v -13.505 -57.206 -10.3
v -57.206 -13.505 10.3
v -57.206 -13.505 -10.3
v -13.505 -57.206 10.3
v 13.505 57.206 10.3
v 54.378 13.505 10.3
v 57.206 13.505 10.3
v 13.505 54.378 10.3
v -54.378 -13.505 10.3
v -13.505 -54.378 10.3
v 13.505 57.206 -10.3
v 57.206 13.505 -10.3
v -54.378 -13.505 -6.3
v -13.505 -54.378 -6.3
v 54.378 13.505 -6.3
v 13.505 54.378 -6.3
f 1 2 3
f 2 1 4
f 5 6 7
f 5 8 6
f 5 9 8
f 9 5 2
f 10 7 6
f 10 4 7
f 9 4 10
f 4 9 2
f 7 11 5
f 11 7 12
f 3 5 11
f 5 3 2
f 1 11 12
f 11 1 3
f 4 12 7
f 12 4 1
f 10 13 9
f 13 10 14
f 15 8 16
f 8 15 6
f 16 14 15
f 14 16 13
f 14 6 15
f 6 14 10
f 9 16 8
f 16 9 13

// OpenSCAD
wallThickness = 4;

/*
    @see https://www.omnicalculator.com/math/golden-ratio
*/
width = 100;
depth = 61.803;
height = depth / 3;

rotate([0, 0, 45]) {
    difference() { 
        cube([width, depth, height], center = true);
        translate([0, 0, wallThickness]){
            cube([width - wallThickness, depth - wallThickness, height], center = true);
        }
    }
}
